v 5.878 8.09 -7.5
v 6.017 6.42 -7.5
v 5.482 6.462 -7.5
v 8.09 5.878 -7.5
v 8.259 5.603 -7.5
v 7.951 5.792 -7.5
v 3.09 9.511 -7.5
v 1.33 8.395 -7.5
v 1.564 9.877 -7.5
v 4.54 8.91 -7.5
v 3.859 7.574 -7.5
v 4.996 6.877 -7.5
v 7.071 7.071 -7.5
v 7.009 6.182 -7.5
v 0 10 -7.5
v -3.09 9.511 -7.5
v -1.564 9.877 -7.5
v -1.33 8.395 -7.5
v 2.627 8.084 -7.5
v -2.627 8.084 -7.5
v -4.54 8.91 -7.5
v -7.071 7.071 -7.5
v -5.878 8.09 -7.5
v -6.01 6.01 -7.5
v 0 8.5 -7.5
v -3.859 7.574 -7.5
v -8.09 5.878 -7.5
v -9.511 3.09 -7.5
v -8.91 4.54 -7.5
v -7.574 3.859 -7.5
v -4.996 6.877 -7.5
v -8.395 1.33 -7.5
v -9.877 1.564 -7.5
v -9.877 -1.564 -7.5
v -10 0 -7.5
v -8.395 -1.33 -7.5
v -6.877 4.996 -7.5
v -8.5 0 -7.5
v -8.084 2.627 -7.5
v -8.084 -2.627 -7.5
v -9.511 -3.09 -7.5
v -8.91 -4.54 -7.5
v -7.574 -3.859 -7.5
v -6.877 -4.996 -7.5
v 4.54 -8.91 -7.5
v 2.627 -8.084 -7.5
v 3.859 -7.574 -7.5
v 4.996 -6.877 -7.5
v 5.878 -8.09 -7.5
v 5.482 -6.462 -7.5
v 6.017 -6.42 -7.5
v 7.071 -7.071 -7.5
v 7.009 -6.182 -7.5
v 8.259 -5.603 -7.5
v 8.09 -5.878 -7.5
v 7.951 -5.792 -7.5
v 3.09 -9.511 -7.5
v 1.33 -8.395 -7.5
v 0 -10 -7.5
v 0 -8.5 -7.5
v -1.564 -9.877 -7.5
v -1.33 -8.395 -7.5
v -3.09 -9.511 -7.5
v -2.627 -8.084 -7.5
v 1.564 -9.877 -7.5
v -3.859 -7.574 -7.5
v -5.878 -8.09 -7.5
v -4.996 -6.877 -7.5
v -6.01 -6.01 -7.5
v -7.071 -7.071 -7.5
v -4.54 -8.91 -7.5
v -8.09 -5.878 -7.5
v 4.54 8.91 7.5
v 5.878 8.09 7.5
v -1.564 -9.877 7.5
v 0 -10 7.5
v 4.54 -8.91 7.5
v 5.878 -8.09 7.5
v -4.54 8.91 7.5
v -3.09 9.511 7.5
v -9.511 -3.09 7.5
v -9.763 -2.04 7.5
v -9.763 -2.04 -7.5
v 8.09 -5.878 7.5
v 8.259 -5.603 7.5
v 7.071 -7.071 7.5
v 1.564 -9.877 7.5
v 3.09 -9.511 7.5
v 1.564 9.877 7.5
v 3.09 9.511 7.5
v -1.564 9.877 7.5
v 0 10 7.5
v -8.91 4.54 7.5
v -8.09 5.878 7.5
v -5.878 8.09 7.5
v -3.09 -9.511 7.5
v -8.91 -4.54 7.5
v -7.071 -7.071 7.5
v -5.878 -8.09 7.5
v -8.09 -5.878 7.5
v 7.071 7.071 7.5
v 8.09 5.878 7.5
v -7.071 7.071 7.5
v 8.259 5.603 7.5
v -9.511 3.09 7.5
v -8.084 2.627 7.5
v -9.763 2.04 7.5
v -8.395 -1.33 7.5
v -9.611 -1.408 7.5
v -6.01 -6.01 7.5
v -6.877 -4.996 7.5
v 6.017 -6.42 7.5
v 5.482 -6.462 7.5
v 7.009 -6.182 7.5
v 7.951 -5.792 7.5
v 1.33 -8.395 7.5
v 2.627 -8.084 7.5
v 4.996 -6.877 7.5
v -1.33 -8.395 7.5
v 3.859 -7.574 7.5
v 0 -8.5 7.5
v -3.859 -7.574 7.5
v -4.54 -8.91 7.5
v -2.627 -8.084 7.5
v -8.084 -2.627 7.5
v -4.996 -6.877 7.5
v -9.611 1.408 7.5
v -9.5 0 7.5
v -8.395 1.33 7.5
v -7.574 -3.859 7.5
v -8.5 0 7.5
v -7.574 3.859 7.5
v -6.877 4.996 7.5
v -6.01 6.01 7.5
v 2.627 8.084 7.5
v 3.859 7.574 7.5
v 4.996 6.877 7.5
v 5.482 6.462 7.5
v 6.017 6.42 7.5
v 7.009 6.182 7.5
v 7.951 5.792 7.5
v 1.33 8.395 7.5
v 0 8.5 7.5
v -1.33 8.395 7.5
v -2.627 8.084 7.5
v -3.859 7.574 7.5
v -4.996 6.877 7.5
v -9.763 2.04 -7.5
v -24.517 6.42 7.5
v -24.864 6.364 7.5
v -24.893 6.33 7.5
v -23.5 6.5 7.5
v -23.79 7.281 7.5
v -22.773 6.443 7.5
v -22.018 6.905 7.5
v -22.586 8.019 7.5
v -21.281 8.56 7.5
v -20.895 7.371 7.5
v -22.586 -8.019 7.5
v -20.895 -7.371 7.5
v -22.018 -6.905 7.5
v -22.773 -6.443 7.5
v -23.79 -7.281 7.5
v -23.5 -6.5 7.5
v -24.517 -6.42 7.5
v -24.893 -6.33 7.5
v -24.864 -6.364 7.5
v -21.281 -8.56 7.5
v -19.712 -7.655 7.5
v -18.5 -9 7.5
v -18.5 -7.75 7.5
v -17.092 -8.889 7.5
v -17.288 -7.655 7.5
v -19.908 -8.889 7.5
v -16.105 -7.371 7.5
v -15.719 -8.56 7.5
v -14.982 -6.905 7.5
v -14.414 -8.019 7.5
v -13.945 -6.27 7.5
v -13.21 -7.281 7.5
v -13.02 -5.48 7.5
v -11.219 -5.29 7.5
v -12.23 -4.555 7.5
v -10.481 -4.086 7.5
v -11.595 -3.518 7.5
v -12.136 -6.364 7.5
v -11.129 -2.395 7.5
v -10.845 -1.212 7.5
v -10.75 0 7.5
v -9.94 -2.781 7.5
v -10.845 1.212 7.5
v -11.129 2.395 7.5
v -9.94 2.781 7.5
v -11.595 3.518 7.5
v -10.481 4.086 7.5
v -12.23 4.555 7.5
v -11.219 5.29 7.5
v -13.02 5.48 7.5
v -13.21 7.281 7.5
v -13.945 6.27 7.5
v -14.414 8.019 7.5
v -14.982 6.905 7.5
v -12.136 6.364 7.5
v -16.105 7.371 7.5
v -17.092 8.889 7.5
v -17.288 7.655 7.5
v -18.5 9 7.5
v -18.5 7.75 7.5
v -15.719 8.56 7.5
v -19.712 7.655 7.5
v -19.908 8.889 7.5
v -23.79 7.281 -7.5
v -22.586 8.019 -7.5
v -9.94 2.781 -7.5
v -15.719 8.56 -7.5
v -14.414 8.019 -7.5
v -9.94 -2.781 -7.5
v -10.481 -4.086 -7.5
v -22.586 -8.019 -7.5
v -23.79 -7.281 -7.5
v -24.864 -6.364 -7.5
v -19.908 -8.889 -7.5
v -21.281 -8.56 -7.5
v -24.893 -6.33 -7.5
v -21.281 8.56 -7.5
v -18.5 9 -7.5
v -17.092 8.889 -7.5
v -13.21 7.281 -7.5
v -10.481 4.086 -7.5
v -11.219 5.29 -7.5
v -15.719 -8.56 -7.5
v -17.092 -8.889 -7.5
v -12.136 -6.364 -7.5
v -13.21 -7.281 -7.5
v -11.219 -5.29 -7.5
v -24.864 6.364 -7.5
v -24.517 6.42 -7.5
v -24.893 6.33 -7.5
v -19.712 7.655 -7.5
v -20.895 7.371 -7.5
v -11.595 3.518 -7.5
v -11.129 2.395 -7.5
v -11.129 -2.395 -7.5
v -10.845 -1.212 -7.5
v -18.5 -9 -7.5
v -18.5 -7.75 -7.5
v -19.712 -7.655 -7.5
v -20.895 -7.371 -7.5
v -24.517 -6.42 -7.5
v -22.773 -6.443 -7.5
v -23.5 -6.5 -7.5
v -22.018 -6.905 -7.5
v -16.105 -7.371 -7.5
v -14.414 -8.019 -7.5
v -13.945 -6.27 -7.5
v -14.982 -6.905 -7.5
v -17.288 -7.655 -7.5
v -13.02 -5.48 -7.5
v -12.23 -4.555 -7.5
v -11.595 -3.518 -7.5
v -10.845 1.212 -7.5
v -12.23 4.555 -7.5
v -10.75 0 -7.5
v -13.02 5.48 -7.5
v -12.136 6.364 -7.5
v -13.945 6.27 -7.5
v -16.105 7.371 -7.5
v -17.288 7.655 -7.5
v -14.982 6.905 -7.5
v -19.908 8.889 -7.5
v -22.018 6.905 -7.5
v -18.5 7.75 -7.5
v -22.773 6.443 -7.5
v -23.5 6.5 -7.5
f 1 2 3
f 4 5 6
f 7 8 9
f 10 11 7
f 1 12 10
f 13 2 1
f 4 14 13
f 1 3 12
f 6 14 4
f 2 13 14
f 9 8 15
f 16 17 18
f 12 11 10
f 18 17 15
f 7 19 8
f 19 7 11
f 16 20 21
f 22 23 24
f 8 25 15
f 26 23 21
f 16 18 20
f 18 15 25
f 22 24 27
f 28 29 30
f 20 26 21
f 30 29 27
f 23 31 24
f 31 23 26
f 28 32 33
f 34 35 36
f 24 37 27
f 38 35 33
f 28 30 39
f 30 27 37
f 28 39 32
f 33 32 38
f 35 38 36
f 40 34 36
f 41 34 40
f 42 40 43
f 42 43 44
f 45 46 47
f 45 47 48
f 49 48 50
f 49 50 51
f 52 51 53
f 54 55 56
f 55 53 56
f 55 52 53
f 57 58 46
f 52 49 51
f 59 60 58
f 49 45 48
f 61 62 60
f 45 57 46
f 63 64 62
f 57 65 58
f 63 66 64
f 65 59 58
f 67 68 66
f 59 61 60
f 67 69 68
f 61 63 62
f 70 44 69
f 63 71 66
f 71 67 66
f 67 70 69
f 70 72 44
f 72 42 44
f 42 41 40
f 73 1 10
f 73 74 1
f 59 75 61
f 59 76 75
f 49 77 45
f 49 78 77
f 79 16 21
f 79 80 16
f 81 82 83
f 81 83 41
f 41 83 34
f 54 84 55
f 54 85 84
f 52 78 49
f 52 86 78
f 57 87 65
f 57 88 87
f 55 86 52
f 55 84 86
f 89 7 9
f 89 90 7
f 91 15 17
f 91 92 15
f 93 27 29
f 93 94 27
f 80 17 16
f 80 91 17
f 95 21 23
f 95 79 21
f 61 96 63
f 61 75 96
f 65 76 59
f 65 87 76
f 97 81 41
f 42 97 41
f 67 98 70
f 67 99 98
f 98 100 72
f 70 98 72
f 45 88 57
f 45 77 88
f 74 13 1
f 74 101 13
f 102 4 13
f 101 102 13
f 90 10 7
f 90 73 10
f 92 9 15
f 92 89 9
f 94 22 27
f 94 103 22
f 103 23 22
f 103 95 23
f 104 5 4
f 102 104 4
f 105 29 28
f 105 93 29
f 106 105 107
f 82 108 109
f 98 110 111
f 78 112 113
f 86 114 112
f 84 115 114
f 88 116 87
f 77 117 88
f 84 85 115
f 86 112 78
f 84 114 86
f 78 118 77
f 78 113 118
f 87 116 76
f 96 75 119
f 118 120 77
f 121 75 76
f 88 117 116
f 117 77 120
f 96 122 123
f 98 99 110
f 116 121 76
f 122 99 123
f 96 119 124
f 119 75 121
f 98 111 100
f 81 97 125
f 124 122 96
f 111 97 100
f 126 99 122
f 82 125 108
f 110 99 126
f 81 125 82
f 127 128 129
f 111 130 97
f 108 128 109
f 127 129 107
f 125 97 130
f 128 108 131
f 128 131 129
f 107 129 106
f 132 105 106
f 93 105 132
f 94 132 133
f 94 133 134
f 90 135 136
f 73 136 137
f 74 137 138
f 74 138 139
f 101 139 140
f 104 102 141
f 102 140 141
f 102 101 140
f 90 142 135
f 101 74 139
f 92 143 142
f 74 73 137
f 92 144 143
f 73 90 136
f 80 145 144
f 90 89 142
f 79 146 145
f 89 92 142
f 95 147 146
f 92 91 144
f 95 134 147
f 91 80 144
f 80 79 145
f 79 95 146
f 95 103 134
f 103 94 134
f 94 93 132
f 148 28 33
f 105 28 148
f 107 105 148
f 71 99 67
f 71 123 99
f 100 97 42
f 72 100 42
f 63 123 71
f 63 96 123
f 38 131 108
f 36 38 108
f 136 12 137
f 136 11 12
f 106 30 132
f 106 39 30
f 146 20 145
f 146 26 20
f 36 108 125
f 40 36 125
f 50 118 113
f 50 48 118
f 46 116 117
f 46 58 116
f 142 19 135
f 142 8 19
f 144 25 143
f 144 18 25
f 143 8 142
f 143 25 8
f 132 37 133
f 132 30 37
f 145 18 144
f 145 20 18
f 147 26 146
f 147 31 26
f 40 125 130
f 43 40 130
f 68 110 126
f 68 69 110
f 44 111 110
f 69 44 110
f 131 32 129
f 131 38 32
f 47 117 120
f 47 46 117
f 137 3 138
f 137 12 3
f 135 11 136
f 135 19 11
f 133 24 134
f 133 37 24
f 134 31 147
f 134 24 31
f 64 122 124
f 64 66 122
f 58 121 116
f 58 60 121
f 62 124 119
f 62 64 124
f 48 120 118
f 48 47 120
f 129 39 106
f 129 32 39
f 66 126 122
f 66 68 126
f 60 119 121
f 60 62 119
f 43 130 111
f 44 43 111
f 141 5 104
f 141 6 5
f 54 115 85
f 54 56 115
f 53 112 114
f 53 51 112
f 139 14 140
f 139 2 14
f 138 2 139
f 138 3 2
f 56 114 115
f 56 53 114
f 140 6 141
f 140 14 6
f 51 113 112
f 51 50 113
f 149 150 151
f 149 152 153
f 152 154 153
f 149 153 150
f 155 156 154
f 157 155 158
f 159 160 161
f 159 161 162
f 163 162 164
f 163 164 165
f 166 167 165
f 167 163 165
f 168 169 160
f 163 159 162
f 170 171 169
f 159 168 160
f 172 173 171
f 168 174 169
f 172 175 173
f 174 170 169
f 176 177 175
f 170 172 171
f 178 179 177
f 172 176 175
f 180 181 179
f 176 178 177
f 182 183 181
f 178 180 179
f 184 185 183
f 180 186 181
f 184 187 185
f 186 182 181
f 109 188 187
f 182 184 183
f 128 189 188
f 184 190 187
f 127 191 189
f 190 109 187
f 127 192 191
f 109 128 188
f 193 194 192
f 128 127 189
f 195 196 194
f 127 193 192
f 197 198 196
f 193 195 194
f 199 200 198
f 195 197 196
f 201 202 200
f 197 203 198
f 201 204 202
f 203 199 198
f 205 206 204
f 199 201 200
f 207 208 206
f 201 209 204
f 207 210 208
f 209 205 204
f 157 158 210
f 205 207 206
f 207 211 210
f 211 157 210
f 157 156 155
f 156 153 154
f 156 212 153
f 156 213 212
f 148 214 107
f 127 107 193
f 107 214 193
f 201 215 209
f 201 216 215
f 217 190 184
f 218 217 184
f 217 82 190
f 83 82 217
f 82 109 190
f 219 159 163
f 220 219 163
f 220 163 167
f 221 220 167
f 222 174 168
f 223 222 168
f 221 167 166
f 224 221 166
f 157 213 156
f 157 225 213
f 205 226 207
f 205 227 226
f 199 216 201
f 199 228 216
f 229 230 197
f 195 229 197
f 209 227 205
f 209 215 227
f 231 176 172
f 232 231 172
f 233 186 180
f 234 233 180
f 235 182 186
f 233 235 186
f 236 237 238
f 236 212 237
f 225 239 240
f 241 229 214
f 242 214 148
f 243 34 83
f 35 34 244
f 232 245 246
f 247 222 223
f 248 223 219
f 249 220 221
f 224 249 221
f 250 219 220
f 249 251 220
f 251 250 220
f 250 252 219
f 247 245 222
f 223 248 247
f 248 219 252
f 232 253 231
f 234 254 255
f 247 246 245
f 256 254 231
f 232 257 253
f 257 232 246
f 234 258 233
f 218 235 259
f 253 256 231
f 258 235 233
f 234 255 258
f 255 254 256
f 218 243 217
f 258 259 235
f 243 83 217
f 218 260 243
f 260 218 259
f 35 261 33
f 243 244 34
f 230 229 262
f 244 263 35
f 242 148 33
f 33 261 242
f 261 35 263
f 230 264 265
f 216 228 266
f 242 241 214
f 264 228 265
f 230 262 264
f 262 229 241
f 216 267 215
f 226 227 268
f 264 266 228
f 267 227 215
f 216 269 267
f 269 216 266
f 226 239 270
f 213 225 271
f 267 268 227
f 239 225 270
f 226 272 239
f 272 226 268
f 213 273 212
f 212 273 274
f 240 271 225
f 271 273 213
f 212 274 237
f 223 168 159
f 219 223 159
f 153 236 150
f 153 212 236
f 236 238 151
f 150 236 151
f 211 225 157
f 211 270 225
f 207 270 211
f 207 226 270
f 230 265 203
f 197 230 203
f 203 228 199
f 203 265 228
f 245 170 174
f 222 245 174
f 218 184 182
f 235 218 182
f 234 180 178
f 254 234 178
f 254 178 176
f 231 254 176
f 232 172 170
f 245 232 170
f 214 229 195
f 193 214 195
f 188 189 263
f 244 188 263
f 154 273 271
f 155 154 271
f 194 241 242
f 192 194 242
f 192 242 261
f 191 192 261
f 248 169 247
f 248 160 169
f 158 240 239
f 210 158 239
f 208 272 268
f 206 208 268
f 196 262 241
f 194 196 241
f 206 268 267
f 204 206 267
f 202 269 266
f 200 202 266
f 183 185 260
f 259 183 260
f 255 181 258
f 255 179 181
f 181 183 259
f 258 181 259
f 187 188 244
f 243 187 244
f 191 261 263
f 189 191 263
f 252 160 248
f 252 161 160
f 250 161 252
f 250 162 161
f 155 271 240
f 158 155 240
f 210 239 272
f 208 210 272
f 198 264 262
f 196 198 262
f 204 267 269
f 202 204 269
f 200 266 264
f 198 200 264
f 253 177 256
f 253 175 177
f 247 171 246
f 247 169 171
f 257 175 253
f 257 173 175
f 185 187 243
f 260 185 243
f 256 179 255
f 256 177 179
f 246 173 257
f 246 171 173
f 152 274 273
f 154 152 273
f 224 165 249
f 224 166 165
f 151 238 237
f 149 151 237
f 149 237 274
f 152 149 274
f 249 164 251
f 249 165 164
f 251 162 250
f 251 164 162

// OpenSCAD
$fn = 40;

//clips onto marker
difference(){
    difference(){
    cylinder(15, d=20, center = true);
    
    translate([0,0,-1])
        cylinder(18, d=17, center = true);
    }
    
    translate([5,0,-1])
        cylinder(20,d=13, center = true);
    }

//clips onto stand
translate([-18.5,0,0])
rotate([0,180,0])
difference(){
    difference(){
    cylinder(15, d=18, center = true);
    
    translate([0,0,-1])
        cylinder(18, d=15.5, center = true);
    }
    
    translate([5,0,-1])
        cylinder(20,d=13, center = true);
    }
